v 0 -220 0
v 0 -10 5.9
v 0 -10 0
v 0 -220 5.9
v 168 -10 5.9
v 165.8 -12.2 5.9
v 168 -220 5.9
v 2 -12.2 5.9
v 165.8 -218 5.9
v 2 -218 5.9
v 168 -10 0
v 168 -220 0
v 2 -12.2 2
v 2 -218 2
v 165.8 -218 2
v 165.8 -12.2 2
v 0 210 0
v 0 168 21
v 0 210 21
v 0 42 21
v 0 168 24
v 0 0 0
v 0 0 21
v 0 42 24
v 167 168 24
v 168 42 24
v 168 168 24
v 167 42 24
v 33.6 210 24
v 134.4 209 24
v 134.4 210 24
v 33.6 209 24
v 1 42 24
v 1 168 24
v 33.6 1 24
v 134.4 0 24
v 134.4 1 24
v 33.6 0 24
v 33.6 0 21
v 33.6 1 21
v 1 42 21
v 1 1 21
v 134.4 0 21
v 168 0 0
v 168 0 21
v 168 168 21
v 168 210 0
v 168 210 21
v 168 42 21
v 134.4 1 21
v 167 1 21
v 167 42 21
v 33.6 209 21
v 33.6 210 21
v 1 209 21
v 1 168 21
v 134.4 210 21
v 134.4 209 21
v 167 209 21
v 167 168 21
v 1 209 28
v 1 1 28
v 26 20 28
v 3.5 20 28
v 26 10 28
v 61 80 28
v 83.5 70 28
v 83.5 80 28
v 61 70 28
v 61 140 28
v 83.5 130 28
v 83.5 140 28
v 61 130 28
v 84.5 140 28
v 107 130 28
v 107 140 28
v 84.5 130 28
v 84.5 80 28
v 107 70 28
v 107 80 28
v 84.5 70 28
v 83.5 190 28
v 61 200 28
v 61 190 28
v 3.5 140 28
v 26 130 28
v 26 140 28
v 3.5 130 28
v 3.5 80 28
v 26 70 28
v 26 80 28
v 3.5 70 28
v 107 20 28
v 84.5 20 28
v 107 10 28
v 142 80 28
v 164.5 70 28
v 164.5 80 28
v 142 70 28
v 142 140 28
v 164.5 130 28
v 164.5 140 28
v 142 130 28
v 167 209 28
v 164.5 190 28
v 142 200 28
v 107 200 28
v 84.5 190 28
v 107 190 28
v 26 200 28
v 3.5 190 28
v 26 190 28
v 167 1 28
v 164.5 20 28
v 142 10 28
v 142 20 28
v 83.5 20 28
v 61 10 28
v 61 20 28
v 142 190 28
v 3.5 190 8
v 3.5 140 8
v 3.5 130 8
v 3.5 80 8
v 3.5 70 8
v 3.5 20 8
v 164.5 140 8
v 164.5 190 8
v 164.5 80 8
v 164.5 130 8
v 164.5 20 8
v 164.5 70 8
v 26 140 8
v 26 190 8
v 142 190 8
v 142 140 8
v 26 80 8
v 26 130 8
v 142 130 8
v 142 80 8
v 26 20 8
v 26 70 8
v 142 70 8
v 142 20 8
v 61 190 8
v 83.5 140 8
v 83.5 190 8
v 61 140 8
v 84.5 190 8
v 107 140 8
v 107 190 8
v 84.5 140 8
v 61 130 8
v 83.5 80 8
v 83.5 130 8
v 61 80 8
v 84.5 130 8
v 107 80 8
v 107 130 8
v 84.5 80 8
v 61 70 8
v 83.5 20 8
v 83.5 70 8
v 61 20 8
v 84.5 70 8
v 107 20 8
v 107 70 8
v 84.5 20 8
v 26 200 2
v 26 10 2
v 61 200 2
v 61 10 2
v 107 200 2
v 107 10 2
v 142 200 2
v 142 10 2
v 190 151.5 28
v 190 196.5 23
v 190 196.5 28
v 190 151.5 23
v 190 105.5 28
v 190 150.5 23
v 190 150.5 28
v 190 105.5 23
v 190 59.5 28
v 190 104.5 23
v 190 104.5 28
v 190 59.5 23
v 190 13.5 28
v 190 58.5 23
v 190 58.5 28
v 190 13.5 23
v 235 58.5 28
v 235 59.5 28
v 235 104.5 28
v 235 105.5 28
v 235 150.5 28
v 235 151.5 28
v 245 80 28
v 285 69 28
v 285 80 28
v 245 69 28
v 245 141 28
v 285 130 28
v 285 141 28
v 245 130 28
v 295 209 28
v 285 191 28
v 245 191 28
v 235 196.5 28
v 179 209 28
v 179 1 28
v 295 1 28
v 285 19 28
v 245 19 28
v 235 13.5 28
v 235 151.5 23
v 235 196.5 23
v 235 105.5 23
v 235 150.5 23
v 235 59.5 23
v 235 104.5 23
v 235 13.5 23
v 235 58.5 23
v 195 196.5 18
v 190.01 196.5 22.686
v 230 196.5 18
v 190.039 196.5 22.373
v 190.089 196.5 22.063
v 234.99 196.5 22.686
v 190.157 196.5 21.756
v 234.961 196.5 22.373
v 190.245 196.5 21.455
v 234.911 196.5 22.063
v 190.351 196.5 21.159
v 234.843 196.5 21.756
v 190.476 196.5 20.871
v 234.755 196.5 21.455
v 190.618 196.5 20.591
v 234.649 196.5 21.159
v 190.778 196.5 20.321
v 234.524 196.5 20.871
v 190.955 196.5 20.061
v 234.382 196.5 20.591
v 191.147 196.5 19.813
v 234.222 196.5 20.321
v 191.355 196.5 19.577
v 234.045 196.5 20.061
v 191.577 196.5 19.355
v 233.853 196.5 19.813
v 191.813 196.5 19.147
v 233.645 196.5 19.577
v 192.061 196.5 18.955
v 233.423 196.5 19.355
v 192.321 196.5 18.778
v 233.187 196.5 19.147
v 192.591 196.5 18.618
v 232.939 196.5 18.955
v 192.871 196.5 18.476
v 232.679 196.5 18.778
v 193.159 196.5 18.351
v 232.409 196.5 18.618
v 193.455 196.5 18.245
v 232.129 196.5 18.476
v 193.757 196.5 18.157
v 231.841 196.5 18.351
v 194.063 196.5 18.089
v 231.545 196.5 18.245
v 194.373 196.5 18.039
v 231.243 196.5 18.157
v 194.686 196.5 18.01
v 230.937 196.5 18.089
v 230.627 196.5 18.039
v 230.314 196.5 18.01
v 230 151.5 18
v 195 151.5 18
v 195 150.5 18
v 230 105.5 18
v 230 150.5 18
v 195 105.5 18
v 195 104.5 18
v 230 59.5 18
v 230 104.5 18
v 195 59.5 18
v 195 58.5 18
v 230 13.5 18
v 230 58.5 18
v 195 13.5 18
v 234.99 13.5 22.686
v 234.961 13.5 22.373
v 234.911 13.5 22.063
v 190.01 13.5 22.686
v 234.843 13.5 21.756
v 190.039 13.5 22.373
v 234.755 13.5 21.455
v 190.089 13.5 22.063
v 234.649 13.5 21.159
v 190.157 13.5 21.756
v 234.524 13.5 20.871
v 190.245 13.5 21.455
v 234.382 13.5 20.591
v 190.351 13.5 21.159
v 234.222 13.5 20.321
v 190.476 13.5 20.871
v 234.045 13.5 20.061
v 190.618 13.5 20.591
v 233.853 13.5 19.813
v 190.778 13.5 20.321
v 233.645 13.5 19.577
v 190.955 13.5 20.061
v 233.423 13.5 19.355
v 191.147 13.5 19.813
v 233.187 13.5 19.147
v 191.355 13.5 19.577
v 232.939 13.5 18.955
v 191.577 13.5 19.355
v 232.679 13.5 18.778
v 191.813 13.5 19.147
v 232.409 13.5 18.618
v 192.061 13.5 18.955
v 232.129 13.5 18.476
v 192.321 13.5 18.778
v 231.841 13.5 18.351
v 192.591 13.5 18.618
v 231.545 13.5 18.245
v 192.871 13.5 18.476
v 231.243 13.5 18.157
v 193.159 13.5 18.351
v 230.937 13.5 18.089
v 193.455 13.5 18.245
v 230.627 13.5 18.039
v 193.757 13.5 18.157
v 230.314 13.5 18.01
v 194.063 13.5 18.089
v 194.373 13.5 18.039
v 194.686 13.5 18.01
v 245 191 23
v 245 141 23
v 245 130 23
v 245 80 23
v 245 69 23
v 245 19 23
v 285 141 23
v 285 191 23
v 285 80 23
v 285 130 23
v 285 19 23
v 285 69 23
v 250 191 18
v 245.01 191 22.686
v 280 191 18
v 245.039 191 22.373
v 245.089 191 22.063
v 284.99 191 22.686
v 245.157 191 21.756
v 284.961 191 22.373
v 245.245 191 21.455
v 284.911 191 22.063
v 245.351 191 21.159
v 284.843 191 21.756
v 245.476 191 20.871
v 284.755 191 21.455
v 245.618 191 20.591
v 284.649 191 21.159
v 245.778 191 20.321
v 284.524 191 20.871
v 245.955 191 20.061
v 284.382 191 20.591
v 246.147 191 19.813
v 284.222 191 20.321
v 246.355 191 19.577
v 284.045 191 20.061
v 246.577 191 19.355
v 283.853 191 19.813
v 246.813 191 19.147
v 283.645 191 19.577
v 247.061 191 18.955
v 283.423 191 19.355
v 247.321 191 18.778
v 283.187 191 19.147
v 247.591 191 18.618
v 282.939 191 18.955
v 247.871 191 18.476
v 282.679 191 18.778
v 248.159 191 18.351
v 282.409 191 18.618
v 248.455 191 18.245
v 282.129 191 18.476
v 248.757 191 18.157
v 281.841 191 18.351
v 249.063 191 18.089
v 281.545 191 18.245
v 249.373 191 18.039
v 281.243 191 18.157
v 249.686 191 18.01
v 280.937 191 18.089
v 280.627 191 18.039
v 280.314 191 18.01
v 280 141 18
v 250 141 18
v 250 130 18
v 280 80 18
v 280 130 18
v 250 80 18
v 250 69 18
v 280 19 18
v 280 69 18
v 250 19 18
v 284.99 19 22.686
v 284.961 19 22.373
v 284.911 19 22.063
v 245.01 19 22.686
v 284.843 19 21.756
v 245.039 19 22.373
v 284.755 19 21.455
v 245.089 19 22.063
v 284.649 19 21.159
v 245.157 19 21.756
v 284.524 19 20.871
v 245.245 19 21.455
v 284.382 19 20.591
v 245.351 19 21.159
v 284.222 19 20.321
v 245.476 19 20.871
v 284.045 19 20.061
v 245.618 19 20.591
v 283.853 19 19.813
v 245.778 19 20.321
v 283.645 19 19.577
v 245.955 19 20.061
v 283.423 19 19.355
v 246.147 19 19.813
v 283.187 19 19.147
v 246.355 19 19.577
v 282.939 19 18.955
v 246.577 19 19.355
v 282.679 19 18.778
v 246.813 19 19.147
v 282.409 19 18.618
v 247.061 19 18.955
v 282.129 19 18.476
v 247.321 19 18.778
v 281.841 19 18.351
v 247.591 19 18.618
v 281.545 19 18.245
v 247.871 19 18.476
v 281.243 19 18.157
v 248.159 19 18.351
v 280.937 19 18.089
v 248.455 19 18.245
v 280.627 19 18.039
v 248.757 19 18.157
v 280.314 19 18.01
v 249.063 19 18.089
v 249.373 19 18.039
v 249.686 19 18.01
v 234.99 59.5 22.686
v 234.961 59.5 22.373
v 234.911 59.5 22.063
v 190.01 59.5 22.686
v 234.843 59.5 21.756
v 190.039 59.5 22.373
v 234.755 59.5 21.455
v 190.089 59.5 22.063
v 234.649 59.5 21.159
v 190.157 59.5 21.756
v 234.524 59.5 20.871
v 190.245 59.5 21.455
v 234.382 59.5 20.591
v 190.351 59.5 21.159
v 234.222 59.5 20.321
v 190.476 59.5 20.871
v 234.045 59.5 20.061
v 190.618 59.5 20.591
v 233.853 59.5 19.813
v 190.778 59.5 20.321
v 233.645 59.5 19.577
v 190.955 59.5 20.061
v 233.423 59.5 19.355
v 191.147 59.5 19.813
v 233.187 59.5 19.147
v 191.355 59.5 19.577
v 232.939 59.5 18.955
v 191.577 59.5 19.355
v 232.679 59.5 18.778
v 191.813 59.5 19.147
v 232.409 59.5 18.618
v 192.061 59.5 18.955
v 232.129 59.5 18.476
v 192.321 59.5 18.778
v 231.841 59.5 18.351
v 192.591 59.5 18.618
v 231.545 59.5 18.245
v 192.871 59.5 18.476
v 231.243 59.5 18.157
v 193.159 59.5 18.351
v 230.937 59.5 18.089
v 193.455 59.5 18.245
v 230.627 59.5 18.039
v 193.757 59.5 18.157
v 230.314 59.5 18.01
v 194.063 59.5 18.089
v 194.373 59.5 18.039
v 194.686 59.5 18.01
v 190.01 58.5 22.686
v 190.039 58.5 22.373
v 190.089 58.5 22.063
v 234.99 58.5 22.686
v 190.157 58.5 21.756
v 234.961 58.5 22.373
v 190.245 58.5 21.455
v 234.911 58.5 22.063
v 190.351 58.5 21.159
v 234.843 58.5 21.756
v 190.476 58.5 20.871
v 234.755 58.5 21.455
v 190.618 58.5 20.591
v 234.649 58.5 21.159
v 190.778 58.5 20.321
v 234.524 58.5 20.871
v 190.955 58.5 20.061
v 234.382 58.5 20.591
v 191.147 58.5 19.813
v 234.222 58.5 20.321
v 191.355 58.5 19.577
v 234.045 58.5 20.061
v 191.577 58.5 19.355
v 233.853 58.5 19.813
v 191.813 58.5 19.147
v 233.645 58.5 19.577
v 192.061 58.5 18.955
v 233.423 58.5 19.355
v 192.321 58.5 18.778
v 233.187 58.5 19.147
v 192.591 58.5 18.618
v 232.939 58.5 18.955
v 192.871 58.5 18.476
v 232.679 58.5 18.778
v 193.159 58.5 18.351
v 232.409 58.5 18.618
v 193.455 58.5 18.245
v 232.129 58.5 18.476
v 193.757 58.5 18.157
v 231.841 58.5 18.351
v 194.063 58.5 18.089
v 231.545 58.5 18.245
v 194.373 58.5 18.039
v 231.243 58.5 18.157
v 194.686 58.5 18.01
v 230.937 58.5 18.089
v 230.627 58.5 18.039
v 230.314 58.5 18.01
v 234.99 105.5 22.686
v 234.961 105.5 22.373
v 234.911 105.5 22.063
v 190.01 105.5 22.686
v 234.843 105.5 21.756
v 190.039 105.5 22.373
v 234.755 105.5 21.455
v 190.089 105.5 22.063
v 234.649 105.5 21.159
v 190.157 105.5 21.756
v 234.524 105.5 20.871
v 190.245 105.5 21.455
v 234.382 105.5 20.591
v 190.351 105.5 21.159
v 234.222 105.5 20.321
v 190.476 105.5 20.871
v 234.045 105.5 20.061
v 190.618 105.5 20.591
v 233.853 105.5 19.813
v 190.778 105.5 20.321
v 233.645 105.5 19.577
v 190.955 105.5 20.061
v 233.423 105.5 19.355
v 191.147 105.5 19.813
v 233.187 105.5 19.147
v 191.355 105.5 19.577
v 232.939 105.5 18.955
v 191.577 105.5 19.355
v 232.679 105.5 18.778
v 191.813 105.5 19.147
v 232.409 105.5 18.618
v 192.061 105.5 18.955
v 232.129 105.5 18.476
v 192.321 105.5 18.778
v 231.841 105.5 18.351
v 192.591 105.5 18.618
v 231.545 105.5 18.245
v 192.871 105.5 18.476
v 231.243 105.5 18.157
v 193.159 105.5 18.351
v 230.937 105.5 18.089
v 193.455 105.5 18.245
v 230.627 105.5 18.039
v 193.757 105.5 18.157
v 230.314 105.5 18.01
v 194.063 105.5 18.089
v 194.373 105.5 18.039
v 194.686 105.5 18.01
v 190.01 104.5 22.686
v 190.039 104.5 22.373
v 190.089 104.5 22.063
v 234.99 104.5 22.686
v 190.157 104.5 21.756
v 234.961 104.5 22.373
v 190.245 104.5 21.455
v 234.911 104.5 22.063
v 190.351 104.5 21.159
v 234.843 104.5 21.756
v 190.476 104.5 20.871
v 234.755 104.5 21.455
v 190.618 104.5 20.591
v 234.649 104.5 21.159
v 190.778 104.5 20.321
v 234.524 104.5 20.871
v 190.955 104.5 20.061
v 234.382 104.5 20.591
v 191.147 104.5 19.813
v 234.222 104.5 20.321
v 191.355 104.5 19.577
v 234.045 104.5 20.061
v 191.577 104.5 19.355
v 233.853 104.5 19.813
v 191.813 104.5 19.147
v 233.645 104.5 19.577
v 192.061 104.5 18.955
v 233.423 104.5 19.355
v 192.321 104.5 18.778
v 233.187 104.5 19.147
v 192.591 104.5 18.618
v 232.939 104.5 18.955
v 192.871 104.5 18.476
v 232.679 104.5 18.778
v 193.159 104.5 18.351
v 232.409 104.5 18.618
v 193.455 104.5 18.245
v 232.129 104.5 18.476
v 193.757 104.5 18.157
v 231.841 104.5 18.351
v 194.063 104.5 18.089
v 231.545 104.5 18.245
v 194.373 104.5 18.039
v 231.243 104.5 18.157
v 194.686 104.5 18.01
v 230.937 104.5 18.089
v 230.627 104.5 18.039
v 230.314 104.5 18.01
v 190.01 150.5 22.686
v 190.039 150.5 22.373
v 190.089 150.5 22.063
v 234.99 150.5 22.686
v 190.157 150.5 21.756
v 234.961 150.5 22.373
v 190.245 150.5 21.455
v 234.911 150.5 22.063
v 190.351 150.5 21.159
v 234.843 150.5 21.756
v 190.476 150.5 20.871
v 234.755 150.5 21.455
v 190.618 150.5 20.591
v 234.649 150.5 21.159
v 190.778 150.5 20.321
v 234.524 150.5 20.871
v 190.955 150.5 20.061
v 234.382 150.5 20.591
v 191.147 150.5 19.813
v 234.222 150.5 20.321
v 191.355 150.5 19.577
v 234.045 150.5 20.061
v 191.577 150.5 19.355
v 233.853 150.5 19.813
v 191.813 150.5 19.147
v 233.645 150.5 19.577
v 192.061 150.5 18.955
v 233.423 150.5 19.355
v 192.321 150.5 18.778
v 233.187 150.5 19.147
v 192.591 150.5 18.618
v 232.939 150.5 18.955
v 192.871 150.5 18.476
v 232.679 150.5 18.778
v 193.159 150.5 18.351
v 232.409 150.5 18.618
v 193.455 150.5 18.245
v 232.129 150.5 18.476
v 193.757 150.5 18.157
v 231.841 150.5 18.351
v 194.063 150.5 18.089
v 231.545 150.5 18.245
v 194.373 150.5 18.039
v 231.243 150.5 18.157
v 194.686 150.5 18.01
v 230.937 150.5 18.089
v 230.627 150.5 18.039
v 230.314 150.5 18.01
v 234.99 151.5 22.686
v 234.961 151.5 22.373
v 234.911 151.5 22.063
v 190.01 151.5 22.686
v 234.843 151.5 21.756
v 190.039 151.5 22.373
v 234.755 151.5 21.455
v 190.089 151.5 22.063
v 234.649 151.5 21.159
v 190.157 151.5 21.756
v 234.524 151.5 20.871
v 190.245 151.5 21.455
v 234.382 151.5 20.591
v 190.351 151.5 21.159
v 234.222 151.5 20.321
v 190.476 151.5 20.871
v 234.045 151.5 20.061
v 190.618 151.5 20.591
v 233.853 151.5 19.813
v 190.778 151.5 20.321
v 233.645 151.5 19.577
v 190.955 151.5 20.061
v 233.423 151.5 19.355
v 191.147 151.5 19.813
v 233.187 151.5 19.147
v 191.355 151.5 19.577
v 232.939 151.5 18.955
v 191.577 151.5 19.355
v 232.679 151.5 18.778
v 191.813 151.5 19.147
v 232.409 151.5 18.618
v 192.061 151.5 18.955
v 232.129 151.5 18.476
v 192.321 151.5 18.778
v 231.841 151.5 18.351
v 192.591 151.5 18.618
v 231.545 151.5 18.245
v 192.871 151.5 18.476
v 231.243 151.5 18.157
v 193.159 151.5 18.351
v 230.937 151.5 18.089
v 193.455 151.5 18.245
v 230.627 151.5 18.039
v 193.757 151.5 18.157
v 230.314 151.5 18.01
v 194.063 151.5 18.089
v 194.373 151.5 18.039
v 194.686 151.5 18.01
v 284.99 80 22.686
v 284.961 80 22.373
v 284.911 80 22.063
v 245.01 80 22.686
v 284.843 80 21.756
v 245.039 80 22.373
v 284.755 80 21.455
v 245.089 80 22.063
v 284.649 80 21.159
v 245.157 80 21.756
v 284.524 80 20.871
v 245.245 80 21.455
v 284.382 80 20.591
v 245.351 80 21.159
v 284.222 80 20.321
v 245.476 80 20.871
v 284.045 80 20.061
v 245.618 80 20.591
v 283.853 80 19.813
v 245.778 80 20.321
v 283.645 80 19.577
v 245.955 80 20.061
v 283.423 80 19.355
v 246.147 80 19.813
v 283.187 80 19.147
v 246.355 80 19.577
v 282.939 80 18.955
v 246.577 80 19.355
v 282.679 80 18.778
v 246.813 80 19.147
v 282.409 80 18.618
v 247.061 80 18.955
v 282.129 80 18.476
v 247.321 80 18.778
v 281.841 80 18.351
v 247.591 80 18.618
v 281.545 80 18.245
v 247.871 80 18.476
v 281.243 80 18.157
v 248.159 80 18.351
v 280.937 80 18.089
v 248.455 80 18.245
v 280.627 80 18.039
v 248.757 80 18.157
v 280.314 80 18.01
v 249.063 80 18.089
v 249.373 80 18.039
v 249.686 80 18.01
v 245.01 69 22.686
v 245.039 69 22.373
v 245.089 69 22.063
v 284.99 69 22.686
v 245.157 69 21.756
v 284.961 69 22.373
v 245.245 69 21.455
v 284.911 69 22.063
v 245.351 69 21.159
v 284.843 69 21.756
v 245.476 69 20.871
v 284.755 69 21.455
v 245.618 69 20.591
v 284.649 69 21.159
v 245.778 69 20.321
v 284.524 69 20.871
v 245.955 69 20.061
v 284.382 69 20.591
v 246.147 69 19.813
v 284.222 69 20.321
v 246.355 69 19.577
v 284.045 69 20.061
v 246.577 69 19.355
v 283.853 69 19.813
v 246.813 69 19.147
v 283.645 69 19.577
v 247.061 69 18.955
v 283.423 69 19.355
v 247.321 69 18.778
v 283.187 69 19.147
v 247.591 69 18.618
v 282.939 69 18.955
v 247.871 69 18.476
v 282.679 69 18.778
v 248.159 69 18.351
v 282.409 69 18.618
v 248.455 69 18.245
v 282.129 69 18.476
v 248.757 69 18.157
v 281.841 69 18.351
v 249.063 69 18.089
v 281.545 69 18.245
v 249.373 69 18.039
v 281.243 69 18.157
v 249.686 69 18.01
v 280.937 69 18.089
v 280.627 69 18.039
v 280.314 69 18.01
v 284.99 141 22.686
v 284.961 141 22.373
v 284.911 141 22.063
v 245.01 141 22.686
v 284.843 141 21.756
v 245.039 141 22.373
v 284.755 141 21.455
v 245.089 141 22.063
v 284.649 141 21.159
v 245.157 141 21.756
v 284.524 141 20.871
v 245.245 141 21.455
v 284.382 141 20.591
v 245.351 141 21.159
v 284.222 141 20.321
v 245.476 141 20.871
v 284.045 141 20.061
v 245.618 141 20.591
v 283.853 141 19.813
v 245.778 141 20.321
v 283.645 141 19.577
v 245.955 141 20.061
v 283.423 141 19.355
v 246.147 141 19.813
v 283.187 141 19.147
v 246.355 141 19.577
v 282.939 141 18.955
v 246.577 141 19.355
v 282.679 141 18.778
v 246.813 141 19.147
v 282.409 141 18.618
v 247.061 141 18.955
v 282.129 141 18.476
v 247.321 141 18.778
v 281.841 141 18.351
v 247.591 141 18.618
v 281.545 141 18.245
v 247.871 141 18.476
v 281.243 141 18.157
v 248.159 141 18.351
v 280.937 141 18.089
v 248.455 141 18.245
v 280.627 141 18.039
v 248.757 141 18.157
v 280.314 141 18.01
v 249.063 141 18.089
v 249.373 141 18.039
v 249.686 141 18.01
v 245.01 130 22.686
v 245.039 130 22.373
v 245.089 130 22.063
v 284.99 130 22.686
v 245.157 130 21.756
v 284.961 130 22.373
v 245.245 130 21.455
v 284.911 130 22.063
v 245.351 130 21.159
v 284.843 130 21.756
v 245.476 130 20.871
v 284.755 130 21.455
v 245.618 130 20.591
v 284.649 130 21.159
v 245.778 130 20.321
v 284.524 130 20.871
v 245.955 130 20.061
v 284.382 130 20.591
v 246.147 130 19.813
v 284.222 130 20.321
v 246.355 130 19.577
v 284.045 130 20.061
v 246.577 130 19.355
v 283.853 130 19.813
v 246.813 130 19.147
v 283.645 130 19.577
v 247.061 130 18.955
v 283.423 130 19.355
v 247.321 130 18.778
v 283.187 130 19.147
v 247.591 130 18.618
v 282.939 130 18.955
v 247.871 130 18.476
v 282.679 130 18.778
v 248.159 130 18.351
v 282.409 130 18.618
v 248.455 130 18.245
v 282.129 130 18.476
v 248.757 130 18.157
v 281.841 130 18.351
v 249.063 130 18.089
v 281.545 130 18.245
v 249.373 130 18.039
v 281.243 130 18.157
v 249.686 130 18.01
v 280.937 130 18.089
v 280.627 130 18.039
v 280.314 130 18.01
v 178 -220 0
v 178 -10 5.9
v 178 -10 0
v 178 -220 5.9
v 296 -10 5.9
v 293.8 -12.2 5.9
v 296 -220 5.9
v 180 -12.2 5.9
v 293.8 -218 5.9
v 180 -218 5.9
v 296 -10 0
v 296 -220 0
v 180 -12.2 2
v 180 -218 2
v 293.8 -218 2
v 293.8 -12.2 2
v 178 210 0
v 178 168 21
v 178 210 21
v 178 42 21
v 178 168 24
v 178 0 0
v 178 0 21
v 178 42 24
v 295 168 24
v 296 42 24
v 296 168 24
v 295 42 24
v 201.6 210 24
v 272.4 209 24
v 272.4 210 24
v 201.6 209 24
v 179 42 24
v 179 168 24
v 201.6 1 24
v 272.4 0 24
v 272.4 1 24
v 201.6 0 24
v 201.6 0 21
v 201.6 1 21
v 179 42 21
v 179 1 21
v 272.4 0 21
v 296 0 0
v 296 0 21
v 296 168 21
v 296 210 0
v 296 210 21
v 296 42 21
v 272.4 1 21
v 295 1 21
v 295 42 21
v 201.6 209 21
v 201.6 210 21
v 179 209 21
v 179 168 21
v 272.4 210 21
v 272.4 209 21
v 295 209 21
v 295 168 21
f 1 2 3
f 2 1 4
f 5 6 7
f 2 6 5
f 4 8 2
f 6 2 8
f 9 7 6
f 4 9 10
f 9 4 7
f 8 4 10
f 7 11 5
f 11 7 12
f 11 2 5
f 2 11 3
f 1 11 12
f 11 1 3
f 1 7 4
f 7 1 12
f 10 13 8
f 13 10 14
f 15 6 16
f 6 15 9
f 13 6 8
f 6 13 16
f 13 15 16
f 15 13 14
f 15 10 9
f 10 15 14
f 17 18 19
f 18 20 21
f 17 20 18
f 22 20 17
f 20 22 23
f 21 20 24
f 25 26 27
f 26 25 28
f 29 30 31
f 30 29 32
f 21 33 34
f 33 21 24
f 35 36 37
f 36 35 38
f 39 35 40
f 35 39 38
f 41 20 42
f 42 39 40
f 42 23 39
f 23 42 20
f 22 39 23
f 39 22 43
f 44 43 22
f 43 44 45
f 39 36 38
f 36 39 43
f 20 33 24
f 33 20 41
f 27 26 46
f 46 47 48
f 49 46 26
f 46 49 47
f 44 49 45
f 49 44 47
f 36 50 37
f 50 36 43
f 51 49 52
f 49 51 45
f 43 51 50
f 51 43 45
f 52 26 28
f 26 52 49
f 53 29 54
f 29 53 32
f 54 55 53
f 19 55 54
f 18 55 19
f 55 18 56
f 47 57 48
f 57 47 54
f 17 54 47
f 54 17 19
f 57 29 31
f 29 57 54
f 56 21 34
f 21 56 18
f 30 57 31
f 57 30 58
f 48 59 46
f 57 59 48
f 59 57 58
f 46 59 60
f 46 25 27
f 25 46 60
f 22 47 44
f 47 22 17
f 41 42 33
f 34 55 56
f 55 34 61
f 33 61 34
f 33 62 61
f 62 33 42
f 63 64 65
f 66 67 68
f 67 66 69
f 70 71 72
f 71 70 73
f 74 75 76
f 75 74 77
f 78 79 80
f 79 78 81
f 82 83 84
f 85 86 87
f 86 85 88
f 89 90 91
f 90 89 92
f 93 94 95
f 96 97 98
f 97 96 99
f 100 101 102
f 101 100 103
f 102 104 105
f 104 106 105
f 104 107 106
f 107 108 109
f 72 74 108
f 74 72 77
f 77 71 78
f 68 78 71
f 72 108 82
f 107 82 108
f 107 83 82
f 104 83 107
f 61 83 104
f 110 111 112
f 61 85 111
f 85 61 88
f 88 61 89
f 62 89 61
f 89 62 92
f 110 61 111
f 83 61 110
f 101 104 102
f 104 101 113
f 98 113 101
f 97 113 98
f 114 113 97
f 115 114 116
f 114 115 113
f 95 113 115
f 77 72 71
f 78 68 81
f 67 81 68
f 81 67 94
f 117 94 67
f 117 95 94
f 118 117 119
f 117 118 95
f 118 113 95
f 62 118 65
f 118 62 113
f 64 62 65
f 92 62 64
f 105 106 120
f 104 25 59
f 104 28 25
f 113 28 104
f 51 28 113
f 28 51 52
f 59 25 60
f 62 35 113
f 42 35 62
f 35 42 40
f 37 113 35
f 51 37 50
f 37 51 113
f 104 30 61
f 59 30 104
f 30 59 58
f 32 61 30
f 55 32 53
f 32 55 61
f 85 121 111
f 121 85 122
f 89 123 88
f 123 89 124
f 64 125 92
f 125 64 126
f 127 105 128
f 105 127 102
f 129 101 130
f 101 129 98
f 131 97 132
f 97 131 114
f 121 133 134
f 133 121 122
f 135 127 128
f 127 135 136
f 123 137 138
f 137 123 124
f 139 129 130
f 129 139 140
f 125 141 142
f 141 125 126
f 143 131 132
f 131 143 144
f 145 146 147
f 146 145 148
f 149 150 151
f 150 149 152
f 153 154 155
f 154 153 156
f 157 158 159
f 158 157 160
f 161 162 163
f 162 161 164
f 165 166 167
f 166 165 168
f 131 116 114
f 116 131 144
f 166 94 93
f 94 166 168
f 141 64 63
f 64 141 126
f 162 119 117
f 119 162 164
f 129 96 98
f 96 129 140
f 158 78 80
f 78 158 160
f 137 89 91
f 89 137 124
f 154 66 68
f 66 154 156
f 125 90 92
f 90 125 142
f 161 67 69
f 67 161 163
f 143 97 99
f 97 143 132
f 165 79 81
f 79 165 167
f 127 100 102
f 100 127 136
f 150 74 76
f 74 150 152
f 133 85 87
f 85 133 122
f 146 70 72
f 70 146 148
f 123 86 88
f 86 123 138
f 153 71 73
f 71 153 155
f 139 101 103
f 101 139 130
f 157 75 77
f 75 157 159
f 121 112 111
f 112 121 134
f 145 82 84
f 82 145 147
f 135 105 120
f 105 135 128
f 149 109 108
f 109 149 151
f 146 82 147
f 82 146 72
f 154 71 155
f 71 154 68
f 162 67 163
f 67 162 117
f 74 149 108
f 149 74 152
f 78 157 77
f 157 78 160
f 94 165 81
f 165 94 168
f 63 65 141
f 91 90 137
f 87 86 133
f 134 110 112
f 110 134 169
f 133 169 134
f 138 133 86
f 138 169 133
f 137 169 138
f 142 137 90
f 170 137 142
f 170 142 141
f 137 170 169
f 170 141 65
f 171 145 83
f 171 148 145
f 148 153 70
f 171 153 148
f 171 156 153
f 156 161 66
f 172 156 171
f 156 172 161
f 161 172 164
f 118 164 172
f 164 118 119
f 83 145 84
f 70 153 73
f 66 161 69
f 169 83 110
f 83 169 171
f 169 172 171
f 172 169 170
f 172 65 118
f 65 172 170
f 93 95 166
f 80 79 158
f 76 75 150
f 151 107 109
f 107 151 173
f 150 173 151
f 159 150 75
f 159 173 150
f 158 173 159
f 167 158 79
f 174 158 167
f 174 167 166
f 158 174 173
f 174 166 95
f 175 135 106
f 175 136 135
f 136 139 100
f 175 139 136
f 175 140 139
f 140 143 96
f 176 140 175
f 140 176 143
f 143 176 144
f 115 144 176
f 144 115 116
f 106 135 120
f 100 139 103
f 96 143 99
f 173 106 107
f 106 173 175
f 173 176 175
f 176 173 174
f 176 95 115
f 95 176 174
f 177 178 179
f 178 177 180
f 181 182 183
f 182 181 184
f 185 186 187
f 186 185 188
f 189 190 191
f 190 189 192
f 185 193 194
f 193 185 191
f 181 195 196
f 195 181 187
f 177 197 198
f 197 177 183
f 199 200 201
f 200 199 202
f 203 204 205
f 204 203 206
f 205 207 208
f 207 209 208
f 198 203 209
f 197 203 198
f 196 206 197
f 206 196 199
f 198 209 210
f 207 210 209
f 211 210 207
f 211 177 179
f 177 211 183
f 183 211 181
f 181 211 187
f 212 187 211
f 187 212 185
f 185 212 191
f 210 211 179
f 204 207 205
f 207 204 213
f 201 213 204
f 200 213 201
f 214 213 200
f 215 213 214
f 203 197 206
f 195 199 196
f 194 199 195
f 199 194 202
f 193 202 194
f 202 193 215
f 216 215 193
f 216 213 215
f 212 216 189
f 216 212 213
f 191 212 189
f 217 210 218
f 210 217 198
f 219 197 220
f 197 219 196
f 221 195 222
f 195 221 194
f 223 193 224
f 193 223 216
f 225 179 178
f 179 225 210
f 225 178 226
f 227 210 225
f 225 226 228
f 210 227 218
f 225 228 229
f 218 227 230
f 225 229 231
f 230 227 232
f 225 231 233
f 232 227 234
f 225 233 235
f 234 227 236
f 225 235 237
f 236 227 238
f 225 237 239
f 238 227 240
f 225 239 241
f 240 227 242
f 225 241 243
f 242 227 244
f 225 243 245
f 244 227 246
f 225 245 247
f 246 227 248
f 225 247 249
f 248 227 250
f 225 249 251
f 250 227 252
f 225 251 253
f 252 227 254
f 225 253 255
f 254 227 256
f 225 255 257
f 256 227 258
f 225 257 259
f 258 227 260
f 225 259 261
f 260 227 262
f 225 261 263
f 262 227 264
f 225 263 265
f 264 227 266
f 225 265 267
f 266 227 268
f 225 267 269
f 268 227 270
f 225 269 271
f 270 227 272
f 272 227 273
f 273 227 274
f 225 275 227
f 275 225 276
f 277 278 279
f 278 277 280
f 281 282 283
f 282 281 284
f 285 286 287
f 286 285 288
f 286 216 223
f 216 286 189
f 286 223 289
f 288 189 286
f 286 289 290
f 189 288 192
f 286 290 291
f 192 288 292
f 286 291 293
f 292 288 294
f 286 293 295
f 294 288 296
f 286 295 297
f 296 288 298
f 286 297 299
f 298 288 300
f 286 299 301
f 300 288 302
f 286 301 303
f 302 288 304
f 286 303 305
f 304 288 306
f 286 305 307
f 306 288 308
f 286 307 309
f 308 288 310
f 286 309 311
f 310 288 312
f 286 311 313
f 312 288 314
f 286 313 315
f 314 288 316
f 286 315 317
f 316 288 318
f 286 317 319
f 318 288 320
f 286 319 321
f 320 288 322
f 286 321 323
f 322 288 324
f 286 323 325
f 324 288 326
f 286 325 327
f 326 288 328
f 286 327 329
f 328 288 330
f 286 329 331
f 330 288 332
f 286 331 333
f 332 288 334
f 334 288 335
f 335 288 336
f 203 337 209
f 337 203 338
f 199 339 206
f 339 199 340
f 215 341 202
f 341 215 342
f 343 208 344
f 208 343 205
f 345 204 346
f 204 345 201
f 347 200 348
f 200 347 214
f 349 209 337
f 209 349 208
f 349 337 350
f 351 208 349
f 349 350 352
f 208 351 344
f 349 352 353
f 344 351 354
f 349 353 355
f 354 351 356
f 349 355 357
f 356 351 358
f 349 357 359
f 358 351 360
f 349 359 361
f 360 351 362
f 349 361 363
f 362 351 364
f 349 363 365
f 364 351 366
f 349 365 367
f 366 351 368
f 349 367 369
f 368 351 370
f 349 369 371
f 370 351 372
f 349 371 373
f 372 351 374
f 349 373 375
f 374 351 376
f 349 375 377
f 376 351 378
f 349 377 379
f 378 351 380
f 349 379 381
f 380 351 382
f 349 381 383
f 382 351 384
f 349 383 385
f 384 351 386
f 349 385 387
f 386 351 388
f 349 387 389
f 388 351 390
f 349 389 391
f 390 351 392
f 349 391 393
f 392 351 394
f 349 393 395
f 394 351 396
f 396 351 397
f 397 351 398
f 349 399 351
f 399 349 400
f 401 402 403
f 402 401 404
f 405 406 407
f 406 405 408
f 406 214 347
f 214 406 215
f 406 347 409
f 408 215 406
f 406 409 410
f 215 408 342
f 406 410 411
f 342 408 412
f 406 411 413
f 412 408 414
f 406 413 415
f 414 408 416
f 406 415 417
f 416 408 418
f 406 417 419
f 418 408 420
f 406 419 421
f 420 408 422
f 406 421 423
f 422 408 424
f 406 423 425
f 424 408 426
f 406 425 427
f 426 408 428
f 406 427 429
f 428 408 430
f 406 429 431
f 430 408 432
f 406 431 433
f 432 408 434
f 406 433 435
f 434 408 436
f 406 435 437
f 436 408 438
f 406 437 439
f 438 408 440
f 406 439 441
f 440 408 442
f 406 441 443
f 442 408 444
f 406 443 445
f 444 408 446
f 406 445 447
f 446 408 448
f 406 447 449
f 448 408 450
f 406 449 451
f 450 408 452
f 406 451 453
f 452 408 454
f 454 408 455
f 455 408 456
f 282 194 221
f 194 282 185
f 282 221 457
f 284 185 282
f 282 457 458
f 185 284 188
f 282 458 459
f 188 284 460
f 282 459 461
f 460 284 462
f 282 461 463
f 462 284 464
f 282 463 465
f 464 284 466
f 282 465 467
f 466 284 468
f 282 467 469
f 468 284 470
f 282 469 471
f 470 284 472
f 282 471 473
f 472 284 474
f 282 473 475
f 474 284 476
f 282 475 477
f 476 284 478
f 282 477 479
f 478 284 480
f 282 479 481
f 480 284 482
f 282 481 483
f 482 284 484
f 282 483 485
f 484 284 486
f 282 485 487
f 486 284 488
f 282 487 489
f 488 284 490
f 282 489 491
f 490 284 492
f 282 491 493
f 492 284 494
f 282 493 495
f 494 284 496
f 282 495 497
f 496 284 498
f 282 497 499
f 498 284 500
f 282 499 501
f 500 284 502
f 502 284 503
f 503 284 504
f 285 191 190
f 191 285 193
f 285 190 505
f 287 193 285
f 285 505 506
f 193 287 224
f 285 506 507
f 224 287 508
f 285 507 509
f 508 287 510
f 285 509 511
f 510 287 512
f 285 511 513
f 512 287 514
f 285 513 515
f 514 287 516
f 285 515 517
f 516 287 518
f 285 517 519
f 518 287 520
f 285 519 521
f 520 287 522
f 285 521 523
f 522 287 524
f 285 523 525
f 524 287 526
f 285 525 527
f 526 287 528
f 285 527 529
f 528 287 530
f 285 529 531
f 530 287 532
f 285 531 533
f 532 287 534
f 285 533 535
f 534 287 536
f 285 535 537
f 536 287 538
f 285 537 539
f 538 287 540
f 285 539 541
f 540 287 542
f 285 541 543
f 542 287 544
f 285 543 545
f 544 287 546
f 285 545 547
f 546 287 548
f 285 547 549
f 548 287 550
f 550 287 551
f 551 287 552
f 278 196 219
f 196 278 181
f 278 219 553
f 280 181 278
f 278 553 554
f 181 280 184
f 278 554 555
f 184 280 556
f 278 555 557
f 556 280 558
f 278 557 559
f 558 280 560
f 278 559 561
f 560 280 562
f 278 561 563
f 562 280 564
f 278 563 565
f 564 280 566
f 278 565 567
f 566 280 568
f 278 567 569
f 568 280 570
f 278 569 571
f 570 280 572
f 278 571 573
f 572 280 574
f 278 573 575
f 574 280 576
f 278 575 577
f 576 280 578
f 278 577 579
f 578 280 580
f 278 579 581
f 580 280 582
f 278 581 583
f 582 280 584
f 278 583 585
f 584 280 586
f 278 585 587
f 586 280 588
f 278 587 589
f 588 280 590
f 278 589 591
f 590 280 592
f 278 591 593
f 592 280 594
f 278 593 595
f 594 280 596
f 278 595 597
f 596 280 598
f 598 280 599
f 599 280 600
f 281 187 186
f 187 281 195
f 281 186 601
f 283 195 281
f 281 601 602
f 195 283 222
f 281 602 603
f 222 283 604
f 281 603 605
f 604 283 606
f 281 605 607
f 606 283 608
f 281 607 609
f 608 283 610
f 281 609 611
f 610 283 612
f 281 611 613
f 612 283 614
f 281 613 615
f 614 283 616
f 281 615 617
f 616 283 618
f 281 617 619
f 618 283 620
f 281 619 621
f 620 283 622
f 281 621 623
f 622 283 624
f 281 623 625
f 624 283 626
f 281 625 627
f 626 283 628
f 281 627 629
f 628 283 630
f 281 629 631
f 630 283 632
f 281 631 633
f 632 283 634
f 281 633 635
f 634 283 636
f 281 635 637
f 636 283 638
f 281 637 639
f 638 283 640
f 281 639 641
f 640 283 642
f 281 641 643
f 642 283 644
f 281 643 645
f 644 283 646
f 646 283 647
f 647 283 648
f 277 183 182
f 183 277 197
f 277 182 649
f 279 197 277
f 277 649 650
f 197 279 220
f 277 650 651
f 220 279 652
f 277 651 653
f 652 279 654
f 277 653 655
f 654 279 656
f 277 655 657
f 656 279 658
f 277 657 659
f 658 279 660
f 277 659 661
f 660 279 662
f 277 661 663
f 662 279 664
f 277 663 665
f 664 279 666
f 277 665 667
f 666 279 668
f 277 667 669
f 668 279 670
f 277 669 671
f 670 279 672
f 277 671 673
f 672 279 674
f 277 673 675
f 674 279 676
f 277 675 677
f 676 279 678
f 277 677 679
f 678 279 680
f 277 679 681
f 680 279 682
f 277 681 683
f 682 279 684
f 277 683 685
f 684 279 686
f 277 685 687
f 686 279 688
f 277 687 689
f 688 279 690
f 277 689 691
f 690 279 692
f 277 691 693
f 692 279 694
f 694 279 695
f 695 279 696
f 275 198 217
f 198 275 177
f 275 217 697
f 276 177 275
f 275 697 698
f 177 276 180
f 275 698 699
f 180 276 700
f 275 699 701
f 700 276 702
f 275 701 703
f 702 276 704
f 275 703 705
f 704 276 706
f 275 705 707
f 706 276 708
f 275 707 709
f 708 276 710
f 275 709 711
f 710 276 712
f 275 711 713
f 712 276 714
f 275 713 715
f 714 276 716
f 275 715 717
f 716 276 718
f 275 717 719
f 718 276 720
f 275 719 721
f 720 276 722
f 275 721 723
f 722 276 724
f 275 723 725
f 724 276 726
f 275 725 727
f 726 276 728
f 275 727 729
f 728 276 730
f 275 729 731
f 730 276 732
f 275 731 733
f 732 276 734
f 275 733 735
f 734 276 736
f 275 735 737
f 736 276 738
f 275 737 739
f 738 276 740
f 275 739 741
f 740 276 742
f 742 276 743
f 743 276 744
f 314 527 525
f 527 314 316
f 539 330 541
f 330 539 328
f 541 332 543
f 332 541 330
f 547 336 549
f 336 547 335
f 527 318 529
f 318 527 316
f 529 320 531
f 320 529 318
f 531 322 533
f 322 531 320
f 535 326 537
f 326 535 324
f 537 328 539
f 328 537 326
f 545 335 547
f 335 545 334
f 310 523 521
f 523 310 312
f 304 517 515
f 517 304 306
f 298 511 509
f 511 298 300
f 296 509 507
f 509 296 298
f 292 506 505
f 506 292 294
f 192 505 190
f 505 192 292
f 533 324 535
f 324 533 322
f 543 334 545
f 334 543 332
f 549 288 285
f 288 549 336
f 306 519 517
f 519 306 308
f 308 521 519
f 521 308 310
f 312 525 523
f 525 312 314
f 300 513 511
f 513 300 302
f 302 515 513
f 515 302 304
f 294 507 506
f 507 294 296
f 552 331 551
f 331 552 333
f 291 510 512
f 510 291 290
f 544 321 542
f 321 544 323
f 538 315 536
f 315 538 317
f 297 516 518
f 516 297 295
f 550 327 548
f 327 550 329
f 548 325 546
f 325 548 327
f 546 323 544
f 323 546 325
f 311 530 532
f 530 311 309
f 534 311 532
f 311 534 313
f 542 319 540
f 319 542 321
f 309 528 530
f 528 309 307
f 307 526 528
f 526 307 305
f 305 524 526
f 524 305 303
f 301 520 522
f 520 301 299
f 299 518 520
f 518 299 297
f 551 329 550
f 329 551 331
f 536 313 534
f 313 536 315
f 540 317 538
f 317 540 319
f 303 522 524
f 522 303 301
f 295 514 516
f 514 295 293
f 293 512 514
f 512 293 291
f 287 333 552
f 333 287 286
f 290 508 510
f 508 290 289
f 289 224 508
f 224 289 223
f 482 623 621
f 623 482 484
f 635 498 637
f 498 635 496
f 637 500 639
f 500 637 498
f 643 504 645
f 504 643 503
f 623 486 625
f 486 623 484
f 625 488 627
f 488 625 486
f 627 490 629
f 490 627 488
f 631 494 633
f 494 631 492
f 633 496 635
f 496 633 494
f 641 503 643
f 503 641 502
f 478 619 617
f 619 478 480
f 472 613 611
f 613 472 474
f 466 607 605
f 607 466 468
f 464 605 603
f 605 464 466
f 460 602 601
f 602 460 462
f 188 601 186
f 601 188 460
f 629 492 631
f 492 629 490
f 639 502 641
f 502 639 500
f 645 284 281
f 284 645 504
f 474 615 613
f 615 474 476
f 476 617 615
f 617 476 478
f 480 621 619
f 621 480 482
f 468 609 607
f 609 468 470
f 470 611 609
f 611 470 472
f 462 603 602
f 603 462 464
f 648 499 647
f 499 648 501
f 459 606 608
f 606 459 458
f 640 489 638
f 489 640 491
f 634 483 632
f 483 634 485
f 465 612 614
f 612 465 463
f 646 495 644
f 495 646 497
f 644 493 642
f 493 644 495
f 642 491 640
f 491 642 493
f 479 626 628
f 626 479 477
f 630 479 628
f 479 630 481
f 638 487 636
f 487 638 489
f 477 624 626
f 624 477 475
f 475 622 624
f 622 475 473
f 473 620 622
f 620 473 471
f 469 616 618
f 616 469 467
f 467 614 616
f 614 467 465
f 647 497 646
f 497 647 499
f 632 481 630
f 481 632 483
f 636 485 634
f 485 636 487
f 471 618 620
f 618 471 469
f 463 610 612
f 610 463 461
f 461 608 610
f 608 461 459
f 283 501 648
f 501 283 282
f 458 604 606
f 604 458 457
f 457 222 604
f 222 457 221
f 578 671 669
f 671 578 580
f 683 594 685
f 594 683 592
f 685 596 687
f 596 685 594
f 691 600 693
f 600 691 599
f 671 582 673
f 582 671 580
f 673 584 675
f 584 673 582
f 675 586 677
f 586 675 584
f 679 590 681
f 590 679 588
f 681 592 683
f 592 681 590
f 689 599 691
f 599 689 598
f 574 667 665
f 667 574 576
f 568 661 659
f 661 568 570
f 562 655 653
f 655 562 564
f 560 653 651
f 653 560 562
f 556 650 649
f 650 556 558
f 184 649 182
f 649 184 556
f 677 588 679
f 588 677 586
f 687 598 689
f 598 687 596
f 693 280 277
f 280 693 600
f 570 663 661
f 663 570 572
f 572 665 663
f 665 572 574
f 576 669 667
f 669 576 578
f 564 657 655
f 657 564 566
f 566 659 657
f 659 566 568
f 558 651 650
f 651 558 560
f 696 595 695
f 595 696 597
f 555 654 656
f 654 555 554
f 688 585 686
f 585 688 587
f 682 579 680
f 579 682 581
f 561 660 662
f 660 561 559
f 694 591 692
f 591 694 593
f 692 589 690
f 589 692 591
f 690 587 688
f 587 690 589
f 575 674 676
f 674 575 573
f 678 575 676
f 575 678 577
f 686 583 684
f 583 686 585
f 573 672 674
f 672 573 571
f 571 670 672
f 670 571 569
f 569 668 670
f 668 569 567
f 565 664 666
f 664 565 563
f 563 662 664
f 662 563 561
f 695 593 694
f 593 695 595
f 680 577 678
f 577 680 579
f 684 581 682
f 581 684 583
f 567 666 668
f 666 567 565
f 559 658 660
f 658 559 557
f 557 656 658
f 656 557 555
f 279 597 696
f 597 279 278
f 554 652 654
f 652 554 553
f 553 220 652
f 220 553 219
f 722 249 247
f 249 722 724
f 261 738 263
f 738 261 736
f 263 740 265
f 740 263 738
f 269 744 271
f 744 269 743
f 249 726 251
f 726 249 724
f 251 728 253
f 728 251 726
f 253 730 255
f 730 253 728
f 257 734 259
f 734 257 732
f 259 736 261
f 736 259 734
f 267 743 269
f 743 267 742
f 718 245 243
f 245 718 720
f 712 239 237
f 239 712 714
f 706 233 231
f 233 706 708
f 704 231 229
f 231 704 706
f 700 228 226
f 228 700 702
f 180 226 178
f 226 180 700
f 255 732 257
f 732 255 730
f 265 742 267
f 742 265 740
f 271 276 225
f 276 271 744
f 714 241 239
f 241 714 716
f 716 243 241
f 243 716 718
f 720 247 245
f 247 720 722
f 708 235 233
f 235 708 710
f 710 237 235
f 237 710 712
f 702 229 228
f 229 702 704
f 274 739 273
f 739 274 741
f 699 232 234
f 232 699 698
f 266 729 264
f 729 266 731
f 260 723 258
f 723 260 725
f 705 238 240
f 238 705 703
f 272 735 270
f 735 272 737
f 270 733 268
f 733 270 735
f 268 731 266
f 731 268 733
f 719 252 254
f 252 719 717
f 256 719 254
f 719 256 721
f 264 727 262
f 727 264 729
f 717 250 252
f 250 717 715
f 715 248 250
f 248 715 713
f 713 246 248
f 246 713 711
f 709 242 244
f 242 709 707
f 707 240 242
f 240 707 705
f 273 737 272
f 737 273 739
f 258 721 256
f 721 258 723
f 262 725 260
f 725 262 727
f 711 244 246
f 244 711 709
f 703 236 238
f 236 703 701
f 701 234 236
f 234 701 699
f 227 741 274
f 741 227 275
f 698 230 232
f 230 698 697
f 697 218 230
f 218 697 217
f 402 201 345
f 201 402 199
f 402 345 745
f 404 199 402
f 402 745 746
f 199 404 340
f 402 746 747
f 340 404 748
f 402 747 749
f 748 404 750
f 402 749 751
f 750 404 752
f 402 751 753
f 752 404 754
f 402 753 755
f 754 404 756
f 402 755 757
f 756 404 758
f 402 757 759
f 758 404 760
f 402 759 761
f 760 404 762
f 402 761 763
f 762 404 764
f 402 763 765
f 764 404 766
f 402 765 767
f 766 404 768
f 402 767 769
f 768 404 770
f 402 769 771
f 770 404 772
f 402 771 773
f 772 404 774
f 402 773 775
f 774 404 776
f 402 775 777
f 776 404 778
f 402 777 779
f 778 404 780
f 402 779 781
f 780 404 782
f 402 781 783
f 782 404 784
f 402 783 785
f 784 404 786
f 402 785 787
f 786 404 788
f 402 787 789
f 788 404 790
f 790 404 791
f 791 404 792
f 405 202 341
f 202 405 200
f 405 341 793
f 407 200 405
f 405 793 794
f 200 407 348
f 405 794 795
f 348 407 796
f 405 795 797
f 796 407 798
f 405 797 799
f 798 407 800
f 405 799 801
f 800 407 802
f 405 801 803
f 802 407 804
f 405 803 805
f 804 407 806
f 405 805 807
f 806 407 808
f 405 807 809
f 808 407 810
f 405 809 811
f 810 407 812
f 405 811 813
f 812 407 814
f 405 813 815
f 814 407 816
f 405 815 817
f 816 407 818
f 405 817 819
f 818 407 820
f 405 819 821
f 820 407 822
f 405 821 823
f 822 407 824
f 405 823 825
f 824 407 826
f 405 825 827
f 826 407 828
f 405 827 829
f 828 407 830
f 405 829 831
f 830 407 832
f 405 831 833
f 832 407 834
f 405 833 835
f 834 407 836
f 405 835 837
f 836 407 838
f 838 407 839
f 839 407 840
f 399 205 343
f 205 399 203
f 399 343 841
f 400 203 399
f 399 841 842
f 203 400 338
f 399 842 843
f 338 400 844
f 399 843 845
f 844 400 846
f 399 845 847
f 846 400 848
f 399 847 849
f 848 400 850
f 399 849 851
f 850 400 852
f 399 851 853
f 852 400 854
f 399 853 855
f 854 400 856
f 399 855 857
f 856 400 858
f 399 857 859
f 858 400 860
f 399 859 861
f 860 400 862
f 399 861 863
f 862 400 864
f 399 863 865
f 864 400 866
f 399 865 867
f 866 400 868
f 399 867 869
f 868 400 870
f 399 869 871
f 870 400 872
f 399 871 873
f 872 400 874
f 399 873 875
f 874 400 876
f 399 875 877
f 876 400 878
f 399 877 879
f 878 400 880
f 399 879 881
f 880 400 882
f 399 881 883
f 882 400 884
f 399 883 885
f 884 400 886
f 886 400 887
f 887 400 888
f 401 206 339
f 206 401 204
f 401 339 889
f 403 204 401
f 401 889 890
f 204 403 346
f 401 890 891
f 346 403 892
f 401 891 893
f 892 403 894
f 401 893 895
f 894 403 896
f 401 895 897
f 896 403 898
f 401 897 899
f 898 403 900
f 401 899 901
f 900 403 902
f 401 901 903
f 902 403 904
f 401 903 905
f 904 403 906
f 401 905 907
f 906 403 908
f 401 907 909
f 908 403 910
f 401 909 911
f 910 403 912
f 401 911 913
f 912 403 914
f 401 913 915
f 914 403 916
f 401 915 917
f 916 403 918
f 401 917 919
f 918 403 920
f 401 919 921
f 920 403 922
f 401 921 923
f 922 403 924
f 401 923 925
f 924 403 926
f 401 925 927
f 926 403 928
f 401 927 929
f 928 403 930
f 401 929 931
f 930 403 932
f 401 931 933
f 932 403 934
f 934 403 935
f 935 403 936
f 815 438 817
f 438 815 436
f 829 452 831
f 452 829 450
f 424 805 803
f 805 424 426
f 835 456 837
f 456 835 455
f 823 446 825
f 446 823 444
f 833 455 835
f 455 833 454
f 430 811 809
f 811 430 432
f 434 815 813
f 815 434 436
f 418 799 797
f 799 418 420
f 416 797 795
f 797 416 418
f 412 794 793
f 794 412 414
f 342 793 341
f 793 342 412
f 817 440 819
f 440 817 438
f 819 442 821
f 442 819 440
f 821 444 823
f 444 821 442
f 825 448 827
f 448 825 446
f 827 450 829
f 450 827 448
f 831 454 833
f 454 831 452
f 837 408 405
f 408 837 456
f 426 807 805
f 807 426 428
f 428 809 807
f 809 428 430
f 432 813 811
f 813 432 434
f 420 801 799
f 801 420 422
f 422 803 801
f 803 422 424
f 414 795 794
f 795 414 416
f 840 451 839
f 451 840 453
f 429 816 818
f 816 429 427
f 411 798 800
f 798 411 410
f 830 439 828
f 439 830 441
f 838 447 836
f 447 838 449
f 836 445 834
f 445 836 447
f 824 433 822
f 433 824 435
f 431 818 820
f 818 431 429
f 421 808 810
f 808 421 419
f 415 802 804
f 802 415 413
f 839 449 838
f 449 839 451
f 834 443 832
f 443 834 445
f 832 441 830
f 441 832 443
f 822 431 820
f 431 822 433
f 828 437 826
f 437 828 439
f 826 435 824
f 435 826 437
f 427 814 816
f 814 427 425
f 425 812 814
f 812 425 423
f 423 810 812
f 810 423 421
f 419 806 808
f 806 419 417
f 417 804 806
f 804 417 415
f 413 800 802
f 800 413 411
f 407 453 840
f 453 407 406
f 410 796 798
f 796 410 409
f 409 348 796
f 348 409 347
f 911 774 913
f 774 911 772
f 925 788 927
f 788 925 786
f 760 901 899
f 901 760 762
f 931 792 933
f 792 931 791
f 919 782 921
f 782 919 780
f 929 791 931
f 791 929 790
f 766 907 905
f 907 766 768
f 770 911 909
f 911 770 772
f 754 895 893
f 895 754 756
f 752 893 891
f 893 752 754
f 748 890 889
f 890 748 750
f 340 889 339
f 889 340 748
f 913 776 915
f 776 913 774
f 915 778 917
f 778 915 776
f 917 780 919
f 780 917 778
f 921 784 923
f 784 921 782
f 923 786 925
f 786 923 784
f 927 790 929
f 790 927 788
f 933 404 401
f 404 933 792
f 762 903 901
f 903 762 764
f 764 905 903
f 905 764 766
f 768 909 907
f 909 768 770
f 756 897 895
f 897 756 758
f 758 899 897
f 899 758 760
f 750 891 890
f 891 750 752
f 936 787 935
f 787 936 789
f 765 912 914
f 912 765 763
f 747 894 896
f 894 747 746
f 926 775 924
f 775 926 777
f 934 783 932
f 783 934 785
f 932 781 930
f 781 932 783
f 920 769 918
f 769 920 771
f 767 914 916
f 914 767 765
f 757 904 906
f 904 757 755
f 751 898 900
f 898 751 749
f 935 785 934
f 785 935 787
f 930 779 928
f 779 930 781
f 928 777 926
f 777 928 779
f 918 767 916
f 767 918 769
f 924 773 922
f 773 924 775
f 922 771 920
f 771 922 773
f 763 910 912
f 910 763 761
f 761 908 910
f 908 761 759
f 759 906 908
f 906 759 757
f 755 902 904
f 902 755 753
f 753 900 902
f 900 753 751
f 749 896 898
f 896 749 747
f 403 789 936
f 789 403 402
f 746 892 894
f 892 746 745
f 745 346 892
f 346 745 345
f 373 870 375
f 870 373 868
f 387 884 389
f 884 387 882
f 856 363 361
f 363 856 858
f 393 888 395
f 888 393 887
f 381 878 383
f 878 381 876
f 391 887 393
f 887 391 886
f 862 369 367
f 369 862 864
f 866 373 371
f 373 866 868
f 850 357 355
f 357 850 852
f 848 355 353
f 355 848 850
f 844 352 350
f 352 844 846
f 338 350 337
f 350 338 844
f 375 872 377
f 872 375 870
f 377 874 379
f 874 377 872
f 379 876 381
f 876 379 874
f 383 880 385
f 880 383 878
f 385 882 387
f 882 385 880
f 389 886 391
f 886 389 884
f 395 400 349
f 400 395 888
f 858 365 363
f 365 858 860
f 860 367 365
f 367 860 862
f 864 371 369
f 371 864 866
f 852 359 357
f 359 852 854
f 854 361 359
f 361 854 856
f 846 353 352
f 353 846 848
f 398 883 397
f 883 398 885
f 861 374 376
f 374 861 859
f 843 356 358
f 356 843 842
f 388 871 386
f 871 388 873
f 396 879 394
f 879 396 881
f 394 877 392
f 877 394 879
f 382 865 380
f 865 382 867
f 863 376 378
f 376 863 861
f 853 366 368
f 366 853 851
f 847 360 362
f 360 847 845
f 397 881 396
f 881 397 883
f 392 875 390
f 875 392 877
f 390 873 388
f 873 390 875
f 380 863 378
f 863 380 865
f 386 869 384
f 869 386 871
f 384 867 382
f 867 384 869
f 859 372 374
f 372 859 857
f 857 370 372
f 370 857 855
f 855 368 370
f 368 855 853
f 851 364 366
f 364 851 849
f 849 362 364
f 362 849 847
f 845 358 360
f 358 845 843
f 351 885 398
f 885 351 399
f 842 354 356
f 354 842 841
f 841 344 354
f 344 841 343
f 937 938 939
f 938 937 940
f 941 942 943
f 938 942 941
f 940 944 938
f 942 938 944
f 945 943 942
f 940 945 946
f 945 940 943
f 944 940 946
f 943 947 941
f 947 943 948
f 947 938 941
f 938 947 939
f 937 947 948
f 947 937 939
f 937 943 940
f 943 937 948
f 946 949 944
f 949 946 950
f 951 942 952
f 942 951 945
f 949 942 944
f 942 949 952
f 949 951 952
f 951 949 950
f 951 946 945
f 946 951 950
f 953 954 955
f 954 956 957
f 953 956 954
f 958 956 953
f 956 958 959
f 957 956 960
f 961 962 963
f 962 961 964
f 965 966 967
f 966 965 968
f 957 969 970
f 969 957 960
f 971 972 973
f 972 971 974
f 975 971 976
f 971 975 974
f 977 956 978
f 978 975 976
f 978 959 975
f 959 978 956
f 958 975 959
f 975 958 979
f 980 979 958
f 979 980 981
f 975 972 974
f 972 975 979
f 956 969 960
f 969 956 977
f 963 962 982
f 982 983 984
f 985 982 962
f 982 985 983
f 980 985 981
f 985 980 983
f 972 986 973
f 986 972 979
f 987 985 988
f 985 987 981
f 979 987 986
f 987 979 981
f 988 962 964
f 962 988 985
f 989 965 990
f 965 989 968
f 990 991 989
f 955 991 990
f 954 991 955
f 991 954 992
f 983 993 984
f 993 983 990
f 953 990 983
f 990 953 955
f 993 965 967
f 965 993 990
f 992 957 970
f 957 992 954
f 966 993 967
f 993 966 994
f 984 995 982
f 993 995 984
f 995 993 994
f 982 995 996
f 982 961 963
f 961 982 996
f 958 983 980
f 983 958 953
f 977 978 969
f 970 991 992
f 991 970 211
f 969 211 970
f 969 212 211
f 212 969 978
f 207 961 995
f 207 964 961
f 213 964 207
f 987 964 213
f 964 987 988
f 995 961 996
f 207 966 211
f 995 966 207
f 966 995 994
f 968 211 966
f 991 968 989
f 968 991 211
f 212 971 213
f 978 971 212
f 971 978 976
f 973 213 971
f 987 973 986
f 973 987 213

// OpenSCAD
include <../boardgame_insert_toolkit_lib.scad>;


// This is a working example of the Boardgame Insert Toolkit used to create a two box insert
// for the Z-Man game, Pandemic. It is designed for a printer that can print 170mm x 210mm x 28mm.
// See the one box version for an example of a design for larger printers.
// 

data =
[
    [   "card box",
        [
            [ "box_dimensions",                             [168.0, 210.0, 28.0] ],                       // float f -- default:[ 100, 100, 100]
            [ "enabled",                                    true ],

            [   "components",
                [
                    [   "cards",
                        [
                            ["type",                        "cards"],                   // "cards" | "chits" | "generic" -- default: "generic"
                            ["compartment_size",            [ 80.0, 50.0, 20.0] ],      // float f -- default:[ 10, 10, 10]
                            ["num_compartments",            [2, 3] ],                   // int i -- default: [1, 1]
                            ["enabled",                     true ],                     // true | false
                            ["rotation",                    0 ],                        // 0 | 1 | -1

                        ]
                    ],
                ]
            ]
        ]
    ],

    [   "chits box",
        [
            [ "box_dimensions",                             [118.0, 210.0, 28.0] ],                       // float f -- default:[ 100, 100, 100]
            [ "enabled",                                    true ],

            [   "components",
                [
                    [   "disease markers",
                        [
                            ["enabled",                     true ],                     // true | false
                            ["type",                        "chits"],
                            ["compartment_size",            [ 45.0, 45.0, 10.0] ],
                            ["num_compartments",            [1, 4] ],
                            ["position",                    [10, "center"] ],
                        ]
                    ],

                    [   "other bits",
                        [
                            ["enabled",                     true ],                     // true | false
                            ["type",                        "chits"],
                            ["compartment_size",            [ 40.0, 50.0, 10.0] ],
                            ["num_compartments",            [1, 3] ],
                            ["position",                    [65, "center"] ],
                            ["extra_spacing",               [0, 10] ]
                        ]
                    ]
                ]
            ]
        ]
    ]
];


// for printing control.
b_print_lid = true;
b_print_box = true;

//b_print_box = "card box"; // isolate one box to print

MakeAll();
